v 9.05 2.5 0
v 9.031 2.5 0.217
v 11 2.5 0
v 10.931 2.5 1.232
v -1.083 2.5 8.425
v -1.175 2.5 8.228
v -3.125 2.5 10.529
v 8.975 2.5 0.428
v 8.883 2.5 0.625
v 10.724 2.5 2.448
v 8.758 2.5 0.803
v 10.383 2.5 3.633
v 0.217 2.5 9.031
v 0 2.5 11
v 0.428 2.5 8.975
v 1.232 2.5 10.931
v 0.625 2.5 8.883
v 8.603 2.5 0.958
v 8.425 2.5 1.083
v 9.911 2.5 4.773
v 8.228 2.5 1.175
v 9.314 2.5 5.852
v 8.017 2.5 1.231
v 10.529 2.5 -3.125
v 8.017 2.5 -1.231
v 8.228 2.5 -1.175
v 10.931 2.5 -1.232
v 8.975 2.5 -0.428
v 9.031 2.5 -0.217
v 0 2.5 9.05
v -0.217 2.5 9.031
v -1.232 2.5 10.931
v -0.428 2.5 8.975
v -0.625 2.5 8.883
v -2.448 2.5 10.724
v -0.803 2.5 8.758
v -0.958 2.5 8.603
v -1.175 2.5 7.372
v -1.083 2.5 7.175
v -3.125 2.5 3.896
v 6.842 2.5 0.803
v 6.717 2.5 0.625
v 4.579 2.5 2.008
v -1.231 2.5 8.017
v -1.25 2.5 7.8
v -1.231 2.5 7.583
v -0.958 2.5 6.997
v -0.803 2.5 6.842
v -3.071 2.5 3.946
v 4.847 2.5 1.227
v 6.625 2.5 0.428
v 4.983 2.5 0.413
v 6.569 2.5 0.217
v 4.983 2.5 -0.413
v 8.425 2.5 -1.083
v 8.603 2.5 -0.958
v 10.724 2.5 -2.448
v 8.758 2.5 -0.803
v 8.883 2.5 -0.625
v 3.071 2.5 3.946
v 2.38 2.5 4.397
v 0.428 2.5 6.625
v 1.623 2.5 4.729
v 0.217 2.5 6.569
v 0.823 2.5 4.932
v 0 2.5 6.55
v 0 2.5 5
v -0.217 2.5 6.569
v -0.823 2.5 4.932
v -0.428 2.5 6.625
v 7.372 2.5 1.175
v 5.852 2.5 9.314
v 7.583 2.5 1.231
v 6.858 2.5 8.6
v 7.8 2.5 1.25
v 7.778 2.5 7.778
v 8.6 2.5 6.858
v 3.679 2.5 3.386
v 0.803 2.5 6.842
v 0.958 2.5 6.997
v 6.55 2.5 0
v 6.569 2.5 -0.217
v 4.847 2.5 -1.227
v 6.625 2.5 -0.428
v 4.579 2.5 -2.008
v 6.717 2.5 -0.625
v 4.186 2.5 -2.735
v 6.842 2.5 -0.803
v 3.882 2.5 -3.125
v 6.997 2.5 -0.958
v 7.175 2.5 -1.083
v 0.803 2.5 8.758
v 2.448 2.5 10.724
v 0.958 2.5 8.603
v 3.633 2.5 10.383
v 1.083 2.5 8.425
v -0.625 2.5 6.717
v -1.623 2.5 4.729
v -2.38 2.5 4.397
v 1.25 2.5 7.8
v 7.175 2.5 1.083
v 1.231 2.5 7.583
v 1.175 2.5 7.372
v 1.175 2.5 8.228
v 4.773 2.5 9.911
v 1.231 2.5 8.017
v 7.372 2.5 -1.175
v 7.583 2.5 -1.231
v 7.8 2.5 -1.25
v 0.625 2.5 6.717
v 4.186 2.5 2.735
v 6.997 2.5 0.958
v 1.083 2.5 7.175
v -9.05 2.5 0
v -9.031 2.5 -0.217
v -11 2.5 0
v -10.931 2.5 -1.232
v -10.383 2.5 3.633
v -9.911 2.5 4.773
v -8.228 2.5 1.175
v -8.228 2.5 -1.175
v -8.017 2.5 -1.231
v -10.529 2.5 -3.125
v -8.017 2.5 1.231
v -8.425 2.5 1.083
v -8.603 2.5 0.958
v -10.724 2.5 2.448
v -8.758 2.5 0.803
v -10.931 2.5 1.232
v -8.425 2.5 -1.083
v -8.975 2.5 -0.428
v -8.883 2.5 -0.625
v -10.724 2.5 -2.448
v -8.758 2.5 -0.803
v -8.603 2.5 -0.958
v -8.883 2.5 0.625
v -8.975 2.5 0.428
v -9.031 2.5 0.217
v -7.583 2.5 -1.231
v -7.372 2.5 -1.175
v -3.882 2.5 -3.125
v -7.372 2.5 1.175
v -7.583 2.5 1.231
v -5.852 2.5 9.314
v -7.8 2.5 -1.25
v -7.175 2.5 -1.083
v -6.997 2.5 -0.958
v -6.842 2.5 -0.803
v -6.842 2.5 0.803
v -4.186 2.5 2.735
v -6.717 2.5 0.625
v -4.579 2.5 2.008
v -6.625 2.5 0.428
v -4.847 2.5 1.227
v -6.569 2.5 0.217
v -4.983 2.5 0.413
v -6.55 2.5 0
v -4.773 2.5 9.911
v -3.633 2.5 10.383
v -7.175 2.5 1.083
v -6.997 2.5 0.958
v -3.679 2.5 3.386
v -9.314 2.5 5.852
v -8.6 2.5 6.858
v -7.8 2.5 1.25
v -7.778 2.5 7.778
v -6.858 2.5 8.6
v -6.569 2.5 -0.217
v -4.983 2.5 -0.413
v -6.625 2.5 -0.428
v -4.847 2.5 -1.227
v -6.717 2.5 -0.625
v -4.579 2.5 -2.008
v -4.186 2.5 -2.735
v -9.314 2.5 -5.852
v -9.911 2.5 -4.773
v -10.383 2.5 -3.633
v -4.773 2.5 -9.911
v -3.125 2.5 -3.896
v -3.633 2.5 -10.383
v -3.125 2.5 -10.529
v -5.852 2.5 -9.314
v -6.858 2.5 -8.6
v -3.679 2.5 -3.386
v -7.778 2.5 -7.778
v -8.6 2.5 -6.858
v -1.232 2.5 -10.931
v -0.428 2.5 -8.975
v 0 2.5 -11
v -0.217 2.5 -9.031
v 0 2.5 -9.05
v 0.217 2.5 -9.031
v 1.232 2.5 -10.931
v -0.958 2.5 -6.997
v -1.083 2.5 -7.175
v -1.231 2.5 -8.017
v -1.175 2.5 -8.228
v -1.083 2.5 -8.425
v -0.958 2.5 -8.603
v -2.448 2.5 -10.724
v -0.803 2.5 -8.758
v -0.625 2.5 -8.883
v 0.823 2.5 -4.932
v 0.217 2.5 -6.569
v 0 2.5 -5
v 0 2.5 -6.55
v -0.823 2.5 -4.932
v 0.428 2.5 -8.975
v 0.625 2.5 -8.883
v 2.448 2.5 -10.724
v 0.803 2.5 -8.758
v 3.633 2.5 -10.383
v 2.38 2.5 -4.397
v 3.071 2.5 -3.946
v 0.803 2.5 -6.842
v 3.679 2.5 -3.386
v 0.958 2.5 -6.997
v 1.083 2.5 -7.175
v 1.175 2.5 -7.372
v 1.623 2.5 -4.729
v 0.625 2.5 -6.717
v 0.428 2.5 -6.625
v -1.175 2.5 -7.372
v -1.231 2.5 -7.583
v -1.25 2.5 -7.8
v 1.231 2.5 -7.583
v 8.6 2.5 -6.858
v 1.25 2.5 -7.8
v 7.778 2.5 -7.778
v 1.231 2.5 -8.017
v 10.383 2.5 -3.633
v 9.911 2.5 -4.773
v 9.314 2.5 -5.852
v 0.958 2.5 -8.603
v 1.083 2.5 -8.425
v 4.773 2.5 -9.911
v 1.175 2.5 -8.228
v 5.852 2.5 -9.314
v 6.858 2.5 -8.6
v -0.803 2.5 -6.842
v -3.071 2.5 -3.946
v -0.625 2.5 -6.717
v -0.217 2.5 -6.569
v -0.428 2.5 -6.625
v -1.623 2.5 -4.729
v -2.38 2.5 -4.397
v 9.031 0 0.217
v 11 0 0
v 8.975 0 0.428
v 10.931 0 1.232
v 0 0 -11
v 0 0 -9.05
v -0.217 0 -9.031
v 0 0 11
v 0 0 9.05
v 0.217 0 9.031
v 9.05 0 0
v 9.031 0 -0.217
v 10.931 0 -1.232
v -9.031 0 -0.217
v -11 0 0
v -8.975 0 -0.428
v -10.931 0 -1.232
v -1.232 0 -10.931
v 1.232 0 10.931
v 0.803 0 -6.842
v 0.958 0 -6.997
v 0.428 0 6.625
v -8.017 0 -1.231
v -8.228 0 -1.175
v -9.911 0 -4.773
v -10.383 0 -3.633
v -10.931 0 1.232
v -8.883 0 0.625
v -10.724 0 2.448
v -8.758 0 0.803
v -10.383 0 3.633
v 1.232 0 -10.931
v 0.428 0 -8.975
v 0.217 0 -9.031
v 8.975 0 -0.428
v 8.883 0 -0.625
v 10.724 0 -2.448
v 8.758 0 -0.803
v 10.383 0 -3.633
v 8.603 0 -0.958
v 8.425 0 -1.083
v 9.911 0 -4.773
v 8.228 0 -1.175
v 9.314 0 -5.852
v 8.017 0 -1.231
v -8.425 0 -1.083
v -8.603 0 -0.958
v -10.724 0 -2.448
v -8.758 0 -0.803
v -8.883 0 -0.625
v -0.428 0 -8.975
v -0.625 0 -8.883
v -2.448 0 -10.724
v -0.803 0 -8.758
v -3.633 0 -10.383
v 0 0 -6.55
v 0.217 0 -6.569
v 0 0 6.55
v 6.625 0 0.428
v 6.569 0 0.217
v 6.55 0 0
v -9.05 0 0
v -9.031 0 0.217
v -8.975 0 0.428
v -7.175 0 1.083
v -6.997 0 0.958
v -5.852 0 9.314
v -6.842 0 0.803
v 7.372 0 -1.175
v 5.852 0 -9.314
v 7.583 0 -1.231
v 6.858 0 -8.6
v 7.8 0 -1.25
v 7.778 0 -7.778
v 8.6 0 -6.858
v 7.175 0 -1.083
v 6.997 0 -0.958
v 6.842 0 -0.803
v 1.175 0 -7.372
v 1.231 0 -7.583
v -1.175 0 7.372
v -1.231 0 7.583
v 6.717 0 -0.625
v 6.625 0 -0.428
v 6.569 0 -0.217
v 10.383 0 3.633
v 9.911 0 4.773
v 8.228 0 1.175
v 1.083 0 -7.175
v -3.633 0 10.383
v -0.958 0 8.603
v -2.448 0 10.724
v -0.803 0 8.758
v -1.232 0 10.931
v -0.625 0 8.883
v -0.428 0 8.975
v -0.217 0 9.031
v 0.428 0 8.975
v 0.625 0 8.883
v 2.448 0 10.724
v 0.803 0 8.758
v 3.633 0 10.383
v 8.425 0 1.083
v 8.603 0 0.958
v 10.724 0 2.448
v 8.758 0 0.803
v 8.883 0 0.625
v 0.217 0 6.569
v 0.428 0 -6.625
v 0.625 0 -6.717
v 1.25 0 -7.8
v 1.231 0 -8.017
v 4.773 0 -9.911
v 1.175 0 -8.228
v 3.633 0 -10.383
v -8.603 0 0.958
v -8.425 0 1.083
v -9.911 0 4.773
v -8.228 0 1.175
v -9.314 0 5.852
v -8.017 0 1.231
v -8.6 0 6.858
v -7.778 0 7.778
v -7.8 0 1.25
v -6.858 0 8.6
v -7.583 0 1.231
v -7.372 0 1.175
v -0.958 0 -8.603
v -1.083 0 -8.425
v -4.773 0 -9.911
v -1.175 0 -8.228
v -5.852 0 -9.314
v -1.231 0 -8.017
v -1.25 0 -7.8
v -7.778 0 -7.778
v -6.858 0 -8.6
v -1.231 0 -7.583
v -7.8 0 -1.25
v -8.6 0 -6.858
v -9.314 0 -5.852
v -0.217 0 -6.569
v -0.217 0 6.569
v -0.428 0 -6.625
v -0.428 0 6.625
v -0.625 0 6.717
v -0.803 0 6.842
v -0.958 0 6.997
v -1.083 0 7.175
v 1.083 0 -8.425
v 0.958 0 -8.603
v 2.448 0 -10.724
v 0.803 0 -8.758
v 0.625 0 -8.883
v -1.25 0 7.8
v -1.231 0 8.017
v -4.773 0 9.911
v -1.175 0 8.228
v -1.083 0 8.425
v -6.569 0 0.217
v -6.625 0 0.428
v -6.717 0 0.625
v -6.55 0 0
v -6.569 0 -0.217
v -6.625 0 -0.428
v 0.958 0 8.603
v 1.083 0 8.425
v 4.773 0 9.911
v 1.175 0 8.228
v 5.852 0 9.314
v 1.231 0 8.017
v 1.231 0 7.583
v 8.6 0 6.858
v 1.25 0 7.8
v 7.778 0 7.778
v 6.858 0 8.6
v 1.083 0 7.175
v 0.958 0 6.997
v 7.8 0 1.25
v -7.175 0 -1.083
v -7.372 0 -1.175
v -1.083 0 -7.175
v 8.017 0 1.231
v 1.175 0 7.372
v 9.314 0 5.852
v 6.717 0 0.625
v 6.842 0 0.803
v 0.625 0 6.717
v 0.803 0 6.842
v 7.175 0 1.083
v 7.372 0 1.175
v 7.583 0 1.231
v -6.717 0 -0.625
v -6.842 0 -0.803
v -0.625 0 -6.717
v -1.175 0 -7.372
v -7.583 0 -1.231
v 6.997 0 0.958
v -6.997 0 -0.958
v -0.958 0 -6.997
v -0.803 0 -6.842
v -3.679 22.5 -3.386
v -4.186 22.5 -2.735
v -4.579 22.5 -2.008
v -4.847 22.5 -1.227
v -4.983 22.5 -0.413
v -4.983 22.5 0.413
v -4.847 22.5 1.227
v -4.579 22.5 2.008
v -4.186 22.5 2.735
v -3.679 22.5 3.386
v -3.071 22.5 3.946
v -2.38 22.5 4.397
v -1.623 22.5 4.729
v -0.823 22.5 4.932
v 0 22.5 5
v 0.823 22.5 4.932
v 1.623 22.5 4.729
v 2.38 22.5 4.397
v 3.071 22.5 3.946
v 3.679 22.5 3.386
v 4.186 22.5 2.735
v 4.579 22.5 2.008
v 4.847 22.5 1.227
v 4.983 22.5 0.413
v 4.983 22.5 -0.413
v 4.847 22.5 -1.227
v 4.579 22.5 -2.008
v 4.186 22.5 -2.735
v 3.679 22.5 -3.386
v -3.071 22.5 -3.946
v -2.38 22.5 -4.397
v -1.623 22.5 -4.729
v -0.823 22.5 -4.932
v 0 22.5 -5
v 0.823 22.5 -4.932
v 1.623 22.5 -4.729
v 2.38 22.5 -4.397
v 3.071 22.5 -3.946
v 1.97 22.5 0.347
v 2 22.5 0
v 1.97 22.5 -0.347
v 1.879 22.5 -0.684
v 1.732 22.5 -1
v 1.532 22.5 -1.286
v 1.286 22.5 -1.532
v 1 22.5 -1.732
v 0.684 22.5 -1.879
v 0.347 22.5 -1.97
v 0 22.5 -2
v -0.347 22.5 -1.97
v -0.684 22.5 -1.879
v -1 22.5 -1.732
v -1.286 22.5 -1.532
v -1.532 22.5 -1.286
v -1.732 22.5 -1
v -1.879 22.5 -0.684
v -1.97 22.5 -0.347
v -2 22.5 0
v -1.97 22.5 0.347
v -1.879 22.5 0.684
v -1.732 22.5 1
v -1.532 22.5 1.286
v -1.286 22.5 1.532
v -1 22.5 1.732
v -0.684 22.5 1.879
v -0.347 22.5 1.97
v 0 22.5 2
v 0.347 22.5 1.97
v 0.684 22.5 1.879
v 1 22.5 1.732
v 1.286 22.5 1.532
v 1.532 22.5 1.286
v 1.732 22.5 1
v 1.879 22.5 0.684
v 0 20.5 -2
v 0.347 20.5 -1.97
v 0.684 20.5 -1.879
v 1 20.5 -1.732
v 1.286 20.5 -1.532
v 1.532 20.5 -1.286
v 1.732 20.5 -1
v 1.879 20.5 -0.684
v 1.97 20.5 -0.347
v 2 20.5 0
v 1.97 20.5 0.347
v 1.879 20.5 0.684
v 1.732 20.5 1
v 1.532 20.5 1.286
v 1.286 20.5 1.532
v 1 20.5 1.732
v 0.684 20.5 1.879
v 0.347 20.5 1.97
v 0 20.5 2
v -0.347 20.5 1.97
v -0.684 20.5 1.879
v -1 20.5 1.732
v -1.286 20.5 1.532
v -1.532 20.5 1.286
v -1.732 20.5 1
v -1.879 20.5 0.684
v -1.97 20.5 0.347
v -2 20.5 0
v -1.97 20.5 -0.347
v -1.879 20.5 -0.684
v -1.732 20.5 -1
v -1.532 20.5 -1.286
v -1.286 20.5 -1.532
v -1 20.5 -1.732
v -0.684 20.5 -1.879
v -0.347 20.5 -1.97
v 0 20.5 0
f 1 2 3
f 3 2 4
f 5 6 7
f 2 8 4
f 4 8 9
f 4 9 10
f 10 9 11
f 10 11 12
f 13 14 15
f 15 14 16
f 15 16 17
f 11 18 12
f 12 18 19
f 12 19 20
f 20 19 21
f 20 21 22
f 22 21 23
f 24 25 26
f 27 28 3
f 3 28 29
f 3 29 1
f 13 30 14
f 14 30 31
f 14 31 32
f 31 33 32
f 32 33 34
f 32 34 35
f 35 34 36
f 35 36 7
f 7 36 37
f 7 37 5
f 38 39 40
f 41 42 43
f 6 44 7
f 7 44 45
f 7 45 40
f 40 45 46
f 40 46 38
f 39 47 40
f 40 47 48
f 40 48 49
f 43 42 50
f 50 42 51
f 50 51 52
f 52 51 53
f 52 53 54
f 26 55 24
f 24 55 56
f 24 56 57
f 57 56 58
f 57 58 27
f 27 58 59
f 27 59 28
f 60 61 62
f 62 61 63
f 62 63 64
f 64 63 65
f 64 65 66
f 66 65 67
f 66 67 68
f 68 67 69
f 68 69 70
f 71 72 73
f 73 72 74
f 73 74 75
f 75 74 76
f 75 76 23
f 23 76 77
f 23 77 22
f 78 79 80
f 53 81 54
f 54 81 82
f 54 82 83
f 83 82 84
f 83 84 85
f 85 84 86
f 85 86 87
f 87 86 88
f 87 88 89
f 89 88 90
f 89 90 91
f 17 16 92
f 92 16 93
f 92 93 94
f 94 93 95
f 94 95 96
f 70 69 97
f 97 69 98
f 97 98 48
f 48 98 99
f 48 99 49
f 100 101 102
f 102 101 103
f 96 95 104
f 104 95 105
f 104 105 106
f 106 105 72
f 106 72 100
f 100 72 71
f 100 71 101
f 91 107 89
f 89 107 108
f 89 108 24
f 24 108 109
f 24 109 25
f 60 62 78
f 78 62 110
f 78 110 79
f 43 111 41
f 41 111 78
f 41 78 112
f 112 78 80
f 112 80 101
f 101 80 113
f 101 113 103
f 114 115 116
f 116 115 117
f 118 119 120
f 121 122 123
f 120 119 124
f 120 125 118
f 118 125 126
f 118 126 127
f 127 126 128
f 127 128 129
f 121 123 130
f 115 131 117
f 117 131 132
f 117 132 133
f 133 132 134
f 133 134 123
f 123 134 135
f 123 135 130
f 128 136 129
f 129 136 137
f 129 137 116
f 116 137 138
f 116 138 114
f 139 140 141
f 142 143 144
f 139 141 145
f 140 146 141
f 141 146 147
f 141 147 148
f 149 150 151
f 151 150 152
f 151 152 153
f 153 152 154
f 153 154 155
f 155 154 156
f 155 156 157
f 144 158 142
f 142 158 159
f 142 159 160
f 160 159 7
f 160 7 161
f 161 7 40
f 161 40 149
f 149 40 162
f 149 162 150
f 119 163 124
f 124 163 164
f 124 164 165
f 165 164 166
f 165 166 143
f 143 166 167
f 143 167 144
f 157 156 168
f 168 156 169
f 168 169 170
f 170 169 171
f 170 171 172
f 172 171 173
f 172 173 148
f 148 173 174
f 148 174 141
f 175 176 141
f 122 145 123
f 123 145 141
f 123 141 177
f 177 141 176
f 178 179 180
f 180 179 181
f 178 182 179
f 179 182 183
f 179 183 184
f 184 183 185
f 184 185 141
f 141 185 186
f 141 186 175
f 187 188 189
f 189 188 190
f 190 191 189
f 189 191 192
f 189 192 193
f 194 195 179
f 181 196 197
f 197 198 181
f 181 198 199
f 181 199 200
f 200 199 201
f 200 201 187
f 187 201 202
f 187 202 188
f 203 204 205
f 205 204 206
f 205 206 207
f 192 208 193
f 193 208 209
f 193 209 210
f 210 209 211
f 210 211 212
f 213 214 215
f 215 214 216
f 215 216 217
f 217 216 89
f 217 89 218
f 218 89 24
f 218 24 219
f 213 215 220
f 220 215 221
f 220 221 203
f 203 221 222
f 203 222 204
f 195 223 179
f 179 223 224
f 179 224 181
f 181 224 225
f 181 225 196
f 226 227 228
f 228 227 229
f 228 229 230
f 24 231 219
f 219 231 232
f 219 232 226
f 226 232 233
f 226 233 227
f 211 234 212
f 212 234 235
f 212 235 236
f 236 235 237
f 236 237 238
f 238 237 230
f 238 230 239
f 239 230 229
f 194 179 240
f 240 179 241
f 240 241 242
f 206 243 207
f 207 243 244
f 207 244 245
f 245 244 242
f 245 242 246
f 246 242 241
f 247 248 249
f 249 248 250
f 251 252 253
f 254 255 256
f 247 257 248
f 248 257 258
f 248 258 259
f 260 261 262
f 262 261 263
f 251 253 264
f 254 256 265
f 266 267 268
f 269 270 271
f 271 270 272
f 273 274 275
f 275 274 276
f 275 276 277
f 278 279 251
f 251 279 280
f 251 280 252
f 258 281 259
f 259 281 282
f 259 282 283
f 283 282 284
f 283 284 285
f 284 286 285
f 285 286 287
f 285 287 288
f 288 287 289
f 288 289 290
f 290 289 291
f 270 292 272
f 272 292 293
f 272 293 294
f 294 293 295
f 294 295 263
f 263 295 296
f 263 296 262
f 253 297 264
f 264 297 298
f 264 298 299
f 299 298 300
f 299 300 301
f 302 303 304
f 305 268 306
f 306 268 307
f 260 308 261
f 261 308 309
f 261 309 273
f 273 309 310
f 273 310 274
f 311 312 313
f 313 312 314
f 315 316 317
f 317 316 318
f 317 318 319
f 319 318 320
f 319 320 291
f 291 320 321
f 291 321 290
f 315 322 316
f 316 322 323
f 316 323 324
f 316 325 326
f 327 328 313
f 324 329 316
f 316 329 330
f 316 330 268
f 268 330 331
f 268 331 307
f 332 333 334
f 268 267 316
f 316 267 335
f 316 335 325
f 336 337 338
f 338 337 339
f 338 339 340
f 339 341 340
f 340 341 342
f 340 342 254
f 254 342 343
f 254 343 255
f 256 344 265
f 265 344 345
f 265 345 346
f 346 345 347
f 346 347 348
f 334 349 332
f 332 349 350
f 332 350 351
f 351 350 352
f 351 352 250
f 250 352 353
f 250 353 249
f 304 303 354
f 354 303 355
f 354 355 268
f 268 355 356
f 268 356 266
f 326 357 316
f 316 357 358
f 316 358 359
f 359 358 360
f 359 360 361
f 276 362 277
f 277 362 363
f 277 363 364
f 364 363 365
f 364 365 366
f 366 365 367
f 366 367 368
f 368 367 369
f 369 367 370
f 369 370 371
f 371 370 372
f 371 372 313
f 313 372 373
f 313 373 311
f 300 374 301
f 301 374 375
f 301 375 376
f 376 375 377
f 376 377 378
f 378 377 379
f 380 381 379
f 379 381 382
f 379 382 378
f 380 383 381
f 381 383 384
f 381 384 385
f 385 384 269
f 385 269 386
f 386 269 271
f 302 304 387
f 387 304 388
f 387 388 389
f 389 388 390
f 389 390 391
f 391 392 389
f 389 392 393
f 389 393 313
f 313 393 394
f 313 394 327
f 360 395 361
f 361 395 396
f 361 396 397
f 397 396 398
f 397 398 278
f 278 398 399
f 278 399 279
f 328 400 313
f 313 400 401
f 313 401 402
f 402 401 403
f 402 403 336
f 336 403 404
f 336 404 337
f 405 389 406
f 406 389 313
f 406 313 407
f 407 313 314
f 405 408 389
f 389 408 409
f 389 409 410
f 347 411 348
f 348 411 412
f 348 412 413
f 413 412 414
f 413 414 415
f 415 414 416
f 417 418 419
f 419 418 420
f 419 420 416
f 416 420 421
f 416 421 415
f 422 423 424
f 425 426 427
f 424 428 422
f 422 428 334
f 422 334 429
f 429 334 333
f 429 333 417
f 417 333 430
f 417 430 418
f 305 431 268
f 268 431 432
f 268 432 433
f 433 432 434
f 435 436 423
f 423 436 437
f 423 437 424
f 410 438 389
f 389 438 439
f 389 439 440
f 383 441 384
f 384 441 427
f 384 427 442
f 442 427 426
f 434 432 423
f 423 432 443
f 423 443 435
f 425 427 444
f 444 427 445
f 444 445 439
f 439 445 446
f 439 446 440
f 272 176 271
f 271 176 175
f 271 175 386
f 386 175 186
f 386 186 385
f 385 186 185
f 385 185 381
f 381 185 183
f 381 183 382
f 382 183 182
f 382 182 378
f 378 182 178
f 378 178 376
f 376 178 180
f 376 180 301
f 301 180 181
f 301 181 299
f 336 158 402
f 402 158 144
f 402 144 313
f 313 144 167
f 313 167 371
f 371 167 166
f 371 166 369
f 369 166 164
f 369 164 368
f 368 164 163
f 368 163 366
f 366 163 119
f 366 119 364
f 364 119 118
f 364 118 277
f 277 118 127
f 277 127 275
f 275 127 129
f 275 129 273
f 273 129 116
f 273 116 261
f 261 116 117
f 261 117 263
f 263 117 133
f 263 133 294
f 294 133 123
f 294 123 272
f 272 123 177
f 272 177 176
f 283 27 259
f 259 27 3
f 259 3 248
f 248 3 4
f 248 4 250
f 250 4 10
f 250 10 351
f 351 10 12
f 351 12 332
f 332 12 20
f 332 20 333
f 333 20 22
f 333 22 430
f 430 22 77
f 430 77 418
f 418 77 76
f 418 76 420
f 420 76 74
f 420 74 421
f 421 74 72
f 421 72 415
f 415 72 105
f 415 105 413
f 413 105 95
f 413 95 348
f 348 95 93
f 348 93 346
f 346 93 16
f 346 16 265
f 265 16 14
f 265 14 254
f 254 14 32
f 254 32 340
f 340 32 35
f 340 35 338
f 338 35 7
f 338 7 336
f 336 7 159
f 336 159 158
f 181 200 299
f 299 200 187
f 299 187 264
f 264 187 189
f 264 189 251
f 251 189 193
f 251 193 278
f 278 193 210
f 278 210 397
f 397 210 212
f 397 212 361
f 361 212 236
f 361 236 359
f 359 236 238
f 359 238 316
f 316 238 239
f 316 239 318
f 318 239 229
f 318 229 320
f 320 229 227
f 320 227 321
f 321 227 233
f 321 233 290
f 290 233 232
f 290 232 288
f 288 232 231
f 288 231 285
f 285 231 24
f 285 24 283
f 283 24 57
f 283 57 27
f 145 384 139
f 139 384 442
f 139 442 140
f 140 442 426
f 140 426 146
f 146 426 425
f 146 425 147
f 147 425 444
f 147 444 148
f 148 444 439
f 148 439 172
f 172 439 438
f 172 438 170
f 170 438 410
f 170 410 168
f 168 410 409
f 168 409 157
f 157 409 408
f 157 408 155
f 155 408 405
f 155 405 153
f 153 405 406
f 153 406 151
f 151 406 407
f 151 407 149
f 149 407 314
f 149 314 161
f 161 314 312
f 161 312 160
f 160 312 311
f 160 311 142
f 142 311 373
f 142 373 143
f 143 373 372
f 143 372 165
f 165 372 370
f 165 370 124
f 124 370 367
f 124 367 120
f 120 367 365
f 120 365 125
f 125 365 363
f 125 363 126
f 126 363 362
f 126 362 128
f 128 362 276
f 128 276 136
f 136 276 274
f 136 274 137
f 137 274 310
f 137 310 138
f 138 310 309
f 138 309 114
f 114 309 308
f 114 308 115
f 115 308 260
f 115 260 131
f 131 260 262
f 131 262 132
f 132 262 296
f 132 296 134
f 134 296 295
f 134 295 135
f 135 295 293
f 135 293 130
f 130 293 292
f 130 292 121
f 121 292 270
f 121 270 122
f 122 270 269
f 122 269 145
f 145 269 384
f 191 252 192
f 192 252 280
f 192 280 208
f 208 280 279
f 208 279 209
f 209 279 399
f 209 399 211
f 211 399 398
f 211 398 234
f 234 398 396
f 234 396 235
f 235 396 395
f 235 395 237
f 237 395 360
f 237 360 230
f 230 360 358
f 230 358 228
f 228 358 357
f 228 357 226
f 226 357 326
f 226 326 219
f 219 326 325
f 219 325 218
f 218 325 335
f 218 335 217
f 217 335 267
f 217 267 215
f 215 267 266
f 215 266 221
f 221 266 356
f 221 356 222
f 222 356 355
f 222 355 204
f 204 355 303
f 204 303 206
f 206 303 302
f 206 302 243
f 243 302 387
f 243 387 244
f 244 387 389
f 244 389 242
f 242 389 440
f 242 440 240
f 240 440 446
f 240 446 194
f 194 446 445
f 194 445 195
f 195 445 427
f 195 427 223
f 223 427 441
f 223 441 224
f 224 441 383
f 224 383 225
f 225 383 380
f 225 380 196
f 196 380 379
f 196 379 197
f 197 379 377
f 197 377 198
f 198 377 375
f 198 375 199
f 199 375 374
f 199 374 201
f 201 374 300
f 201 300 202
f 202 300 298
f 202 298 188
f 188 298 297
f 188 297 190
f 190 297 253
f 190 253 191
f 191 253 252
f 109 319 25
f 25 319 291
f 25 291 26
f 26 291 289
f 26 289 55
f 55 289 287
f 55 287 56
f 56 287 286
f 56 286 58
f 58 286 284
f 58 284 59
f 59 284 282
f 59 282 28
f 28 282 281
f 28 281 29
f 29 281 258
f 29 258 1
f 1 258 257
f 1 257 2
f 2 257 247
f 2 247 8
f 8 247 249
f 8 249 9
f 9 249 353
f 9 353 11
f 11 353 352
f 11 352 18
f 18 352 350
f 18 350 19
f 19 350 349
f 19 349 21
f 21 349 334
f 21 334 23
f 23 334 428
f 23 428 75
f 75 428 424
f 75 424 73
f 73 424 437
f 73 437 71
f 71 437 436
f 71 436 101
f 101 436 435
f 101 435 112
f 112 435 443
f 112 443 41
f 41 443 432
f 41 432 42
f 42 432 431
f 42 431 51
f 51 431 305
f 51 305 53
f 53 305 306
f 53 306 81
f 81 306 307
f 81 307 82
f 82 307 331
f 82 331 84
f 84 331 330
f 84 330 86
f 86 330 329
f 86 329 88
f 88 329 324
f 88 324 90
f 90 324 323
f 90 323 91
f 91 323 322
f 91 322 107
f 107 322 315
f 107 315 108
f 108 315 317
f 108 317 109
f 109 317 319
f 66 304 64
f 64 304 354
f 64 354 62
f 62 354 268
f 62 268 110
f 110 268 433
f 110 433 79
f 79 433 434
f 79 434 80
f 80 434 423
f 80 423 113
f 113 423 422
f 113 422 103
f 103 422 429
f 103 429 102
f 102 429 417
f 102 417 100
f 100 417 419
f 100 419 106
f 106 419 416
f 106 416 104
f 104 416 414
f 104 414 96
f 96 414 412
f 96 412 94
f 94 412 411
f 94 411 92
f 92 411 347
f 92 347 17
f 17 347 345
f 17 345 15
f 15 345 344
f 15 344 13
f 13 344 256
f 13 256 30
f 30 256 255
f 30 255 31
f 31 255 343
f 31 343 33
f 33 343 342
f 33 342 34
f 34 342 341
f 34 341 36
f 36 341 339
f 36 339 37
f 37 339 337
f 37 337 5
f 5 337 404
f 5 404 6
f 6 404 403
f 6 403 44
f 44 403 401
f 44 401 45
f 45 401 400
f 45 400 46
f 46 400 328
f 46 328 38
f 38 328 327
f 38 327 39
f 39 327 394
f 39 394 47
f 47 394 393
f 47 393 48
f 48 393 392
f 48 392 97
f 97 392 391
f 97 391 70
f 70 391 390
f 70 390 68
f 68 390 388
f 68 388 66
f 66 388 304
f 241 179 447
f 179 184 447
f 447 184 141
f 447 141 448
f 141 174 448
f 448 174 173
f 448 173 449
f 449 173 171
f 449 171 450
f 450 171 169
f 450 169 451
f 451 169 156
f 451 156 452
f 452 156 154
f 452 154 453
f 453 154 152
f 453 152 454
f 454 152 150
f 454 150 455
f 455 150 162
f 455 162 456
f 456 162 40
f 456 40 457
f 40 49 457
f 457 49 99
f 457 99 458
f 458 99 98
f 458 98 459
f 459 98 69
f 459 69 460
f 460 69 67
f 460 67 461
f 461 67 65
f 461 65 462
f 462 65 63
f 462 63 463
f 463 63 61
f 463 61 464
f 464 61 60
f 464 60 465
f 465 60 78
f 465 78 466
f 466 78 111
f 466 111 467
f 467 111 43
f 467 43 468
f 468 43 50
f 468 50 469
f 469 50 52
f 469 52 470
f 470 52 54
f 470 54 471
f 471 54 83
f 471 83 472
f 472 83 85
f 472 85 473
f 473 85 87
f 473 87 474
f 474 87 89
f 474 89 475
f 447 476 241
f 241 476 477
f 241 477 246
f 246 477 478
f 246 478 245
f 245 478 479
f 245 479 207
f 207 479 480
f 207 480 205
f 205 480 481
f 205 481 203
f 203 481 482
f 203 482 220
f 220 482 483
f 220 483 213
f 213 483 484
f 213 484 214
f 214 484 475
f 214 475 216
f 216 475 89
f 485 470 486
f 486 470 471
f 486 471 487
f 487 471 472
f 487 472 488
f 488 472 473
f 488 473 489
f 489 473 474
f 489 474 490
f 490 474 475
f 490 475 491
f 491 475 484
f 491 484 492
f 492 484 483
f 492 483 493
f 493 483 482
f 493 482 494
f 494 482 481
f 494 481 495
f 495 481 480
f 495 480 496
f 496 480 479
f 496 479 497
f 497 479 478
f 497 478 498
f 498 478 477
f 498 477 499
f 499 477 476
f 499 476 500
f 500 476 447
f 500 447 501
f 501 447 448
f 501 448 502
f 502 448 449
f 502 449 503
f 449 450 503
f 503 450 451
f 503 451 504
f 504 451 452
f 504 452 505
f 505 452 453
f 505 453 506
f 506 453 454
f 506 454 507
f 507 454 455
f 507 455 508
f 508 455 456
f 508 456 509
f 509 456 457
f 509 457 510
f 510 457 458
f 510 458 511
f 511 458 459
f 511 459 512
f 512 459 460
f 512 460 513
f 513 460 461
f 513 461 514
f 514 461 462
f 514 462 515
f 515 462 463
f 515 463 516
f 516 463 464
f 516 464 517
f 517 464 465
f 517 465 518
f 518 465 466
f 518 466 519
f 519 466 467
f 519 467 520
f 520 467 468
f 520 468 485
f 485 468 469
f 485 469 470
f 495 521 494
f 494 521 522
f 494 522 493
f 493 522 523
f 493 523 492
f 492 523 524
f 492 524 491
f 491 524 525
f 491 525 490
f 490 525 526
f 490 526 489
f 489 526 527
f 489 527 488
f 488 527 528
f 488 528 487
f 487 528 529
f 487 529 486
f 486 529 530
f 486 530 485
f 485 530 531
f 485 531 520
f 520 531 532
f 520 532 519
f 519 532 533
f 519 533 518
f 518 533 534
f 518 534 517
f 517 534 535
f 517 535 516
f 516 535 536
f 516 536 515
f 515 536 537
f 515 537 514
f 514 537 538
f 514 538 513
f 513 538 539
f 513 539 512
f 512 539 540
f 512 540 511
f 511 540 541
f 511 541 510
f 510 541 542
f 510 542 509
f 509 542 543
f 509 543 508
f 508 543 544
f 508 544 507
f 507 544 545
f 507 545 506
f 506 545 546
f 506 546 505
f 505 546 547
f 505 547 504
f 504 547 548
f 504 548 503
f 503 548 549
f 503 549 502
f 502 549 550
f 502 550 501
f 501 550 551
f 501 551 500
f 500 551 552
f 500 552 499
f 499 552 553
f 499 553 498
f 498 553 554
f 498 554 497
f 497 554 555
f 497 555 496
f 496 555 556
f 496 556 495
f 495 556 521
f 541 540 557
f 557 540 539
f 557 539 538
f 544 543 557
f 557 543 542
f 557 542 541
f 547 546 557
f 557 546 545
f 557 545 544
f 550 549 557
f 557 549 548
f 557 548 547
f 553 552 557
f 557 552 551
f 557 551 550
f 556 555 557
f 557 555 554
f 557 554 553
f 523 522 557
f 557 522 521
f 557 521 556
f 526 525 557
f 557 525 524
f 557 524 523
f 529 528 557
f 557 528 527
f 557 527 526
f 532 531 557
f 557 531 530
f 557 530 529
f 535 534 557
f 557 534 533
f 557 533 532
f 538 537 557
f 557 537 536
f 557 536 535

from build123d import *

# Parameters (mm, degrees)
SKETCH1_R           = 11
SKETCH1_R_2         = 1.25
BOSS_EXTRUDE2_DEPTH = 2.5
SKETCH2_R           = 5
BOSS_EXTRUDE3_DEPTH = 18
SKETCH3_R           = 5
SKETCH3_R_2         = 2
BOSS_EXTRUDE4_DEPTH = 2


with BuildPart() as part:
    # Sketch1 → Boss-Extrude2 (new body)
    with BuildSketch(Plane(origin=(0, 0, 0), x_dir=(1, 0, 0), z_dir=(0, 1, 0))):
        with Locations(Location((0, 0, 0), (0, 0, 270))):
            Circle(SKETCH1_R)
        with Locations(Location((-7.8, 0, 0), (0, 0, 270))):
            Circle(SKETCH1_R_2, mode=Mode.SUBTRACT)
        with Locations(Location((0, 7.8, 0), (0, 0, 270))):
            Circle(SKETCH1_R_2, mode=Mode.SUBTRACT)
        with Locations(Location((7.8, 0, 0), (0, 0, 270))):
            Circle(SKETCH1_R_2, mode=Mode.SUBTRACT)
        with Locations(Location((0, -7.8, 0), (0, 0, 270))):
            Circle(SKETCH1_R_2, mode=Mode.SUBTRACT)
    extrude(amount=BOSS_EXTRUDE2_DEPTH)

    # Sketch2 → Boss-Extrude3 (add)
    with BuildSketch(Plane(origin=(0, 2.5, 0), x_dir=(1, 0, 0), z_dir=(0, 1, 0))):
        with Locations(Location((0, 0, 0), (0, 0, 270))):
            Circle(SKETCH2_R)
    extrude(amount=BOSS_EXTRUDE3_DEPTH)

    # Sketch3 → Boss-Extrude4 (add)
    with BuildSketch(Plane(origin=(0, 20.5, 0), x_dir=(1, 0, 0), z_dir=(0, 1, 0))):
        with Locations(Location((0, 0, 0), (0, 0, 270))):
            Circle(SKETCH3_R)
        with Locations(Location((0, 0, 0), (0, 0, 270))):
            Circle(SKETCH3_R_2, mode=Mode.SUBTRACT)
    extrude(amount=BOSS_EXTRUDE4_DEPTH)


solid = part.part
